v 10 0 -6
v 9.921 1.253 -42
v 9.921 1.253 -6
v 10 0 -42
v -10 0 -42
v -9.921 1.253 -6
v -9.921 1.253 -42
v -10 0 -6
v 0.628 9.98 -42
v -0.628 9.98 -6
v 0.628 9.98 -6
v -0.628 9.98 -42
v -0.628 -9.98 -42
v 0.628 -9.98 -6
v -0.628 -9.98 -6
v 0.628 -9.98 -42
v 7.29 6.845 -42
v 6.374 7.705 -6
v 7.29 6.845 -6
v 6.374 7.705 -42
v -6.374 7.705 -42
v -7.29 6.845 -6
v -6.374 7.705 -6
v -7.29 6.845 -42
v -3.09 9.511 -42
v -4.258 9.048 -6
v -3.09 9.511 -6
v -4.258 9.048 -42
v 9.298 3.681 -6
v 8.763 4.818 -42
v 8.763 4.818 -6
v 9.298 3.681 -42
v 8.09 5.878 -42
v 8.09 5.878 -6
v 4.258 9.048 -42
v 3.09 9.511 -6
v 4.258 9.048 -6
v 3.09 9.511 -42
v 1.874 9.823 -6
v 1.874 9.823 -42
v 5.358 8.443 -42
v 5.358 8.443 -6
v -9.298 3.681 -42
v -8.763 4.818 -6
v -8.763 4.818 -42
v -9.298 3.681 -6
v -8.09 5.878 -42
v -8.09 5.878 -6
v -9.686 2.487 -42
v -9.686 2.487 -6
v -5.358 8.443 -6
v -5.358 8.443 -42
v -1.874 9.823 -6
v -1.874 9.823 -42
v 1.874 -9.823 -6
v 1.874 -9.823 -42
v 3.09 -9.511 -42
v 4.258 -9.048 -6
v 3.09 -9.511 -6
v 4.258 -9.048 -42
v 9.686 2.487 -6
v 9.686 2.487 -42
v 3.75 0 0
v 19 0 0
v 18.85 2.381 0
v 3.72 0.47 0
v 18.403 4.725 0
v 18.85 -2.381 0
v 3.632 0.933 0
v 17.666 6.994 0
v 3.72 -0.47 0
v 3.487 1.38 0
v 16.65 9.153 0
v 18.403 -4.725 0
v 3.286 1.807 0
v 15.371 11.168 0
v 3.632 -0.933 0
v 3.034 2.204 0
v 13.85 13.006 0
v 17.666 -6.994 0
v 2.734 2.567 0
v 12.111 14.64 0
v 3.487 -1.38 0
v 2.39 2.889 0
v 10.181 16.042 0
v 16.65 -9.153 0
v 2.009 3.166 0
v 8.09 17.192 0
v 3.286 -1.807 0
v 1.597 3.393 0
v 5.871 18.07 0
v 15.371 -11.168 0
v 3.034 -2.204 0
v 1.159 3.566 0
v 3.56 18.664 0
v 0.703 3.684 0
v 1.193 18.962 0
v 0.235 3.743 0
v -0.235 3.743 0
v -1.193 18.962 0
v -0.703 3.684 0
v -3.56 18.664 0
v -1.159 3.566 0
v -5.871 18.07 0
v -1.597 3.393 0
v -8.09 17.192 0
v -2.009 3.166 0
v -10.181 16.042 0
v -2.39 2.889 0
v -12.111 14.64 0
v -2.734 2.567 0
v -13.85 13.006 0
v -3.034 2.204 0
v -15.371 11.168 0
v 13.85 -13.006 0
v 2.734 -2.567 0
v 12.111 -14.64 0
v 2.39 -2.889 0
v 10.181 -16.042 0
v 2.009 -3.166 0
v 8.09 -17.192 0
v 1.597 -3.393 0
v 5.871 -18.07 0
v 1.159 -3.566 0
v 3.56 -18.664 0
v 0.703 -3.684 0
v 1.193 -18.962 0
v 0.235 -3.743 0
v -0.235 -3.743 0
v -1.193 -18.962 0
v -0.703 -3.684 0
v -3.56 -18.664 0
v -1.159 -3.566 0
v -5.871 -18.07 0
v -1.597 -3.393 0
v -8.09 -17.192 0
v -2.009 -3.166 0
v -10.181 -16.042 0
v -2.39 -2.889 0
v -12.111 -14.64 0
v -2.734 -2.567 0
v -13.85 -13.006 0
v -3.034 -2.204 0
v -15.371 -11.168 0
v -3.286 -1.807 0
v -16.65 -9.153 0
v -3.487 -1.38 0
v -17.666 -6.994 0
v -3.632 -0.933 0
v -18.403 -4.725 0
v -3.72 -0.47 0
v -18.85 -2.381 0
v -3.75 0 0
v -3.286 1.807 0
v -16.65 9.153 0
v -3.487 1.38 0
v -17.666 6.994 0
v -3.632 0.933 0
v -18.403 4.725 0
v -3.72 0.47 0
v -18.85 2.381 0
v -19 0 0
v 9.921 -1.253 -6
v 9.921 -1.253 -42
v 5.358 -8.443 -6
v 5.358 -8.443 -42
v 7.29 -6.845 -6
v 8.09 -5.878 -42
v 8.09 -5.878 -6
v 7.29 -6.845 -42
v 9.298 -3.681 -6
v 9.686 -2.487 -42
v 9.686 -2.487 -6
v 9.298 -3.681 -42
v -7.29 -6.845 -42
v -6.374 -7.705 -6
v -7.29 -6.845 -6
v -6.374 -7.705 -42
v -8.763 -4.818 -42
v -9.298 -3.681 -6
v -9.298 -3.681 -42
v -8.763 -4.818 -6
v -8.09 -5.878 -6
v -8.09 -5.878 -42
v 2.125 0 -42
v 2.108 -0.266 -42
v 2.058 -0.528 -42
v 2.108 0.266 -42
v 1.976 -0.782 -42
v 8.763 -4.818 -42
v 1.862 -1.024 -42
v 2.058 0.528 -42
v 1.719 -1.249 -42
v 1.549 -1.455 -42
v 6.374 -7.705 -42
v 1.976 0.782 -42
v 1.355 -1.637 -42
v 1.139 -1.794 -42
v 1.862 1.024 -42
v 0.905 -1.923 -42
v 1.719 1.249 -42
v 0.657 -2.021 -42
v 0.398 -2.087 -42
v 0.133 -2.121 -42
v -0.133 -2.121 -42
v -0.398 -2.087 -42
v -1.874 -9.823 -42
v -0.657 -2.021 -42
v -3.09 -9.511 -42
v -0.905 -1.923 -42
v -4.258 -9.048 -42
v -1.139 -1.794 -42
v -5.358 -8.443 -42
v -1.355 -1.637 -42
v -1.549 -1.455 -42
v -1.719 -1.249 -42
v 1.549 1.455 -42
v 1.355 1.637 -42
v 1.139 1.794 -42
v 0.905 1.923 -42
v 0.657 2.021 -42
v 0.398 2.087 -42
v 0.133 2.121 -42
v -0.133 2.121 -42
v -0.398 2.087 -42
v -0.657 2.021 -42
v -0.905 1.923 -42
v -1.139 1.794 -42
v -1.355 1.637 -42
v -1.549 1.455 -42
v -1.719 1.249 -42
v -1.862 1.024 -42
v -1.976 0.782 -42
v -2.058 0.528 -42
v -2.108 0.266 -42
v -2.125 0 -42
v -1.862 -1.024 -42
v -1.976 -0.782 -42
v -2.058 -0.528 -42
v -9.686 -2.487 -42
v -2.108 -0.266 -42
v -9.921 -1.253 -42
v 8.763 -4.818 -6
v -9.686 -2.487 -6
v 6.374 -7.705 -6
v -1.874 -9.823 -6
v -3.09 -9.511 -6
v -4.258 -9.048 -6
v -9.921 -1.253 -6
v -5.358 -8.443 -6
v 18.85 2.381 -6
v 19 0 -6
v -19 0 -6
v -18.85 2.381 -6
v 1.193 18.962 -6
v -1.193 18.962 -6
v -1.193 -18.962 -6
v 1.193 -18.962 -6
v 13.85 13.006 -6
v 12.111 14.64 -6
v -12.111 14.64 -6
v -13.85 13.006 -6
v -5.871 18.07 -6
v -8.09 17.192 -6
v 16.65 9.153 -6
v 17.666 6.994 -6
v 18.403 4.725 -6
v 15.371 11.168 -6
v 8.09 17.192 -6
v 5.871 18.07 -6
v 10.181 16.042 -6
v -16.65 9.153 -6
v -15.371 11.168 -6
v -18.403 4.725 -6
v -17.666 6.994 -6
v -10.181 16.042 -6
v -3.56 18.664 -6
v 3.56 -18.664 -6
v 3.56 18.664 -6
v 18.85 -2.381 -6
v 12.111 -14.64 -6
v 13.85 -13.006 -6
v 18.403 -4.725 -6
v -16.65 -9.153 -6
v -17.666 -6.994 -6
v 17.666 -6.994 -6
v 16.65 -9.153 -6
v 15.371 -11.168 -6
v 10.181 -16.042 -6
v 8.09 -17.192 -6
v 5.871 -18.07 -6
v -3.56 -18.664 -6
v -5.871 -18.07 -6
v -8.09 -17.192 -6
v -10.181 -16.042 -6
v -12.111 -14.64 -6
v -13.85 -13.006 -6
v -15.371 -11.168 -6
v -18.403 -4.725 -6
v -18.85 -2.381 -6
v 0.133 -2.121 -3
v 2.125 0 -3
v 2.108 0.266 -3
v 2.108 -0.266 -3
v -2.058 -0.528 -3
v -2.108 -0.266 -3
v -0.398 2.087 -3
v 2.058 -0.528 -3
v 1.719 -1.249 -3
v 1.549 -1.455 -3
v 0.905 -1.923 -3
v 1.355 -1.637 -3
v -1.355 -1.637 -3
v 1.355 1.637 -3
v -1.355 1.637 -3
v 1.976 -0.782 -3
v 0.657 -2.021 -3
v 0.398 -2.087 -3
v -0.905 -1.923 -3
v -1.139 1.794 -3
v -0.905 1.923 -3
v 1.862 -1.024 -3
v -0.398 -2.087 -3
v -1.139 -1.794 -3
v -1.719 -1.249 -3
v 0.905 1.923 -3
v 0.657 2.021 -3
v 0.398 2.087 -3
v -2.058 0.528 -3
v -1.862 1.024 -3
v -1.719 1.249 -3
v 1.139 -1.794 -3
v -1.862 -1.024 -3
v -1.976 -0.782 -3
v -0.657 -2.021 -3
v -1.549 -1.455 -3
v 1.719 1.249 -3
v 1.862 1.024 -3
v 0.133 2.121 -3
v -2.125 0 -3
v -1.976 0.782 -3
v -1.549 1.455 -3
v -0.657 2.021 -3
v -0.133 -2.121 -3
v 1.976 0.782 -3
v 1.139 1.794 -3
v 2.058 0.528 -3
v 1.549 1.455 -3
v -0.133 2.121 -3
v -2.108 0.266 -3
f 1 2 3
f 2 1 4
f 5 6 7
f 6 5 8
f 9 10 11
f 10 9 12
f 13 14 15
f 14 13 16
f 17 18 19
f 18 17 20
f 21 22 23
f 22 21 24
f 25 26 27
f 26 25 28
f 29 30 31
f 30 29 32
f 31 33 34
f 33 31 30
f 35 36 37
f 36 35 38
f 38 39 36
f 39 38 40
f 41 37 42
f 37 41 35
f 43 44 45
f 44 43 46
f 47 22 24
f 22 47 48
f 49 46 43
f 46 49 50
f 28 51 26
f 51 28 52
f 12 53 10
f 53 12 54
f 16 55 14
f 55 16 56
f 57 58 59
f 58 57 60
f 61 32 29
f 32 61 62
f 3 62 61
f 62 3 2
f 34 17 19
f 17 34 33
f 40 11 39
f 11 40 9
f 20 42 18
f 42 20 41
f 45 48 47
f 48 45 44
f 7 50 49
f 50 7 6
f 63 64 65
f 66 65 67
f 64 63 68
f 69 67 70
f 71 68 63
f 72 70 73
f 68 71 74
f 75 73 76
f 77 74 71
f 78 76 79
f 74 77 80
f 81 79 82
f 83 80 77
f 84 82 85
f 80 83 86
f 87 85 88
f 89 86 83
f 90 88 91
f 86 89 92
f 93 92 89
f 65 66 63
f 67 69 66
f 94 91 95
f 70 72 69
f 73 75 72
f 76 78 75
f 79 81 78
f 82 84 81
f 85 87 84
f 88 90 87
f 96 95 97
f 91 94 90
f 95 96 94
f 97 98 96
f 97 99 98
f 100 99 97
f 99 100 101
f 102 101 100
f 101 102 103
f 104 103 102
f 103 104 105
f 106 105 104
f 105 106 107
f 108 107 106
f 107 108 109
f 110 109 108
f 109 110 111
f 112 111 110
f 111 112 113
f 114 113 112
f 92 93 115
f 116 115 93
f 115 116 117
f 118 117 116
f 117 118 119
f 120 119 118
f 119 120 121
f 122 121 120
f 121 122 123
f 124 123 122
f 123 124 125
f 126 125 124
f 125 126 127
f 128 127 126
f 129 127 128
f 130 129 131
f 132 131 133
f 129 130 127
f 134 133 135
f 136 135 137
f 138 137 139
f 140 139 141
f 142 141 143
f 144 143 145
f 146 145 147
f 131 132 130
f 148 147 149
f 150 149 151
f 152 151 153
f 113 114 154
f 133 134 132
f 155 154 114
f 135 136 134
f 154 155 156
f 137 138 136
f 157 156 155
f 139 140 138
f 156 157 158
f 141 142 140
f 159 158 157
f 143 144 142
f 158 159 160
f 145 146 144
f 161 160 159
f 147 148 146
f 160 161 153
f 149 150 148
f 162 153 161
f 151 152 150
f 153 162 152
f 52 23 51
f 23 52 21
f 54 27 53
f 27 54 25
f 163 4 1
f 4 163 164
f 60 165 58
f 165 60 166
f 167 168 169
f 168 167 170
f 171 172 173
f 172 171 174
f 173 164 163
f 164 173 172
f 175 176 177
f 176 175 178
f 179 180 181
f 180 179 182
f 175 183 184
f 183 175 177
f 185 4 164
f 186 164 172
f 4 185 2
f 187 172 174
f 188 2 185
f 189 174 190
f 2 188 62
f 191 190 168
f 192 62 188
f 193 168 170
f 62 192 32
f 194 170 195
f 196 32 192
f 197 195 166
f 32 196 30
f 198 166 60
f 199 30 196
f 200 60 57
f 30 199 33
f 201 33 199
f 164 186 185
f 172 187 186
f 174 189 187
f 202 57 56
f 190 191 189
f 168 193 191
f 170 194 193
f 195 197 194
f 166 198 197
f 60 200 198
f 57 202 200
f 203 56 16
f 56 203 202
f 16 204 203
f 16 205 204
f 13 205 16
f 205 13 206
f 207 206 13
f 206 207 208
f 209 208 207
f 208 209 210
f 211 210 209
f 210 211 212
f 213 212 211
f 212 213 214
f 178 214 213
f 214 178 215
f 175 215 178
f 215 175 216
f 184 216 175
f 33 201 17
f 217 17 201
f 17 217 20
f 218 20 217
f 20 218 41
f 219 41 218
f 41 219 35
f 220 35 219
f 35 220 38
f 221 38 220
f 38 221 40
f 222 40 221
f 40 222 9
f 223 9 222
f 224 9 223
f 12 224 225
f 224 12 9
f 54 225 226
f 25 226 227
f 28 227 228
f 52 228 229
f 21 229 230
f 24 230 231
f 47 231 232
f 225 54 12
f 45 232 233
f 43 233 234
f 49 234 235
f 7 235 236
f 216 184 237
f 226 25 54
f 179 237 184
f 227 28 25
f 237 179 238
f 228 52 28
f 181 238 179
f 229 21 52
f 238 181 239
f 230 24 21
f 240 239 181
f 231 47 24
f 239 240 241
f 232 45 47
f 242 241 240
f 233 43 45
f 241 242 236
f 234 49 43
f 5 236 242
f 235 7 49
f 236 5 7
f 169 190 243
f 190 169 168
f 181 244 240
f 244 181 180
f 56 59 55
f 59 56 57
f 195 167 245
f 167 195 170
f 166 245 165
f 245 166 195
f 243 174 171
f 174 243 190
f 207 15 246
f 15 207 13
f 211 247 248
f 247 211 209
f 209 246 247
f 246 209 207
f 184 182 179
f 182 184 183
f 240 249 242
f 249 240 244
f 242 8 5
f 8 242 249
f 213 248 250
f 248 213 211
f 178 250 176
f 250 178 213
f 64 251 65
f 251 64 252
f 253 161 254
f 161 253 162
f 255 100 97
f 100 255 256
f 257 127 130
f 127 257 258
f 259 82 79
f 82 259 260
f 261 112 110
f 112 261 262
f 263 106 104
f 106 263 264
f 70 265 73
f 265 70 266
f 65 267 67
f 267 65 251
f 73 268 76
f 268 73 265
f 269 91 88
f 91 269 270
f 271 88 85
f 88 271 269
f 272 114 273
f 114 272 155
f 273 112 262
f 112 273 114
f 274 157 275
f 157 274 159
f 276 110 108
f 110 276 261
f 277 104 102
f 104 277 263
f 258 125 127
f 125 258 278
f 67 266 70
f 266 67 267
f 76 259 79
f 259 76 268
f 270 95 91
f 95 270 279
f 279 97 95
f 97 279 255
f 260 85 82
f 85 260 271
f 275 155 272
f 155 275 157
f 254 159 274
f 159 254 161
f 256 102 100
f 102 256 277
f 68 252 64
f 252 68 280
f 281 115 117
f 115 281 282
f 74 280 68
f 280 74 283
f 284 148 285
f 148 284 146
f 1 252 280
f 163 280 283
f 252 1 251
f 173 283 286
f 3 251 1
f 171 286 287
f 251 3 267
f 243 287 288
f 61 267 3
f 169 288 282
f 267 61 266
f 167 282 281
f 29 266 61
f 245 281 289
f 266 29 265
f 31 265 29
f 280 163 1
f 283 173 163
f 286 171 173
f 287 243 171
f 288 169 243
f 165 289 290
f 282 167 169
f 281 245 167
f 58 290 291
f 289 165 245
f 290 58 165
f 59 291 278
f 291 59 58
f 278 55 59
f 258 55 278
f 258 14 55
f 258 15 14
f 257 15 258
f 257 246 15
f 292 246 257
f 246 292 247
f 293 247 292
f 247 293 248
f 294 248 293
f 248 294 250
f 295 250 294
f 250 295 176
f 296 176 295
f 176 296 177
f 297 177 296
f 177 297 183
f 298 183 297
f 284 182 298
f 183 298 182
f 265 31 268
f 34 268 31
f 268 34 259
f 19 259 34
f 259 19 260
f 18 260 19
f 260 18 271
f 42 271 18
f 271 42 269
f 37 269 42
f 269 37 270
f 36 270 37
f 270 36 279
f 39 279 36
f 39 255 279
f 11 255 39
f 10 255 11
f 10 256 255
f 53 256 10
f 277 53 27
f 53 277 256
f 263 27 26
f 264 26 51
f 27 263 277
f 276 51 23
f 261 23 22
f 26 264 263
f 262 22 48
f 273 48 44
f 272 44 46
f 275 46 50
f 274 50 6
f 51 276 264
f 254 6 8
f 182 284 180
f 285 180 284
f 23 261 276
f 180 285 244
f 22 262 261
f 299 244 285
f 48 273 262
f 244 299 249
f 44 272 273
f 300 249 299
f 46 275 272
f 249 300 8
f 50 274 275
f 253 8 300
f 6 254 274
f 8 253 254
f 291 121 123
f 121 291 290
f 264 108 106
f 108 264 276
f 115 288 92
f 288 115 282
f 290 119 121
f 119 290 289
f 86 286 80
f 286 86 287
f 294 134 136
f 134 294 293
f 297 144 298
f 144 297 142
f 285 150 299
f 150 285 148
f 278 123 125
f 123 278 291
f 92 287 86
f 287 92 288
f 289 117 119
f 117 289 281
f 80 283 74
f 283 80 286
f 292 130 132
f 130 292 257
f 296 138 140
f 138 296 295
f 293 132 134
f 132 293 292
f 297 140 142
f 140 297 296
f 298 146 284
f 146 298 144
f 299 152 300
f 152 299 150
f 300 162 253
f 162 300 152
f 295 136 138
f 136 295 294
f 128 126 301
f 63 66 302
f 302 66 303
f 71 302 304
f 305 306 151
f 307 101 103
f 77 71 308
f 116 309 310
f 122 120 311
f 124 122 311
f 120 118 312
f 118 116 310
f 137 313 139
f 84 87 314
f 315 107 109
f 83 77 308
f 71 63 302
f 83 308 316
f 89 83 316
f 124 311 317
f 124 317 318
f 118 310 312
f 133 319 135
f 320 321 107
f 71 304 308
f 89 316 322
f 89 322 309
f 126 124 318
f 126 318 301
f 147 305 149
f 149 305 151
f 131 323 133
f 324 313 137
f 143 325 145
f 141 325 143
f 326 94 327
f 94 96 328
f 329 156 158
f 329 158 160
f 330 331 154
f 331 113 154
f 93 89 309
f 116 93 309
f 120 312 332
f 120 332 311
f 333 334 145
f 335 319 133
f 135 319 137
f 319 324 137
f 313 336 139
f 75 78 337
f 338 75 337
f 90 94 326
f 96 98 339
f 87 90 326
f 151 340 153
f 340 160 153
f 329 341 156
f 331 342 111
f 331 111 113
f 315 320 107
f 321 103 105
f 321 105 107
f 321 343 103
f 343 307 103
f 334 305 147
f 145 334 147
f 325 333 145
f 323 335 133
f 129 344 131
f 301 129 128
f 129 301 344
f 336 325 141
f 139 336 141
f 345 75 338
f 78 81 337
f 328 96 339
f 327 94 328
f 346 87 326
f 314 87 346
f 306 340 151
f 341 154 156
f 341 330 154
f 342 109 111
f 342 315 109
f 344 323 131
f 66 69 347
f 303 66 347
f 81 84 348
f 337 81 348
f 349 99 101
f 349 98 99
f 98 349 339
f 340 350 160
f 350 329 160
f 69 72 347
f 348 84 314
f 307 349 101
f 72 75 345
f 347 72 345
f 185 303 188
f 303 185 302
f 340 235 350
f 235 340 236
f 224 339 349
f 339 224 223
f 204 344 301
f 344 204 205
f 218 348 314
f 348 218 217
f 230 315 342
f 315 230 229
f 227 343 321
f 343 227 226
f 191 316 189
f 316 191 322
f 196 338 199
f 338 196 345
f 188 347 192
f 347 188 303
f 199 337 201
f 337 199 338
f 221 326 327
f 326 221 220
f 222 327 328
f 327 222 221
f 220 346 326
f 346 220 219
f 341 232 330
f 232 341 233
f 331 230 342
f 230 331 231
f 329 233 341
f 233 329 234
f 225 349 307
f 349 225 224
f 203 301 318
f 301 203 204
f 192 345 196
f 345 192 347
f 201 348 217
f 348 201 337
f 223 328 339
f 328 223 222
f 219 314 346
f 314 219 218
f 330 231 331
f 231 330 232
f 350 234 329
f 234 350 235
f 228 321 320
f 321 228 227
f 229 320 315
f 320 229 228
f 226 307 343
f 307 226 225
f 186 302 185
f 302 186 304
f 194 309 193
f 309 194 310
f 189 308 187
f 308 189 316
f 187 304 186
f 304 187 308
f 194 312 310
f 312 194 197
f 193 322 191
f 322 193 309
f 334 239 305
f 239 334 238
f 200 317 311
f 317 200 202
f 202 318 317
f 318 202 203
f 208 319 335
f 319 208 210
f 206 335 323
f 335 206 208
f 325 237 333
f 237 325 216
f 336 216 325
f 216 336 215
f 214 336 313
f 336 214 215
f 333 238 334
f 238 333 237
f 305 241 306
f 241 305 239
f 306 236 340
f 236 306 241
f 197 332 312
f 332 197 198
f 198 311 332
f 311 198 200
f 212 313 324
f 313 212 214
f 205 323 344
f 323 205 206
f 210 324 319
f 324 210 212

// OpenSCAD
$fn = 50;


difference() {
	union() {
		translate(v = [0, 0, -42.0000000000]) {
			cylinder(h = 42, r = 10.0000000000);
		}
		translate(v = [0, 0, -6.0000000000]) {
			cylinder(h = 6, r = 19.0000000000);
		}
	}
	union() {
		translate(v = [0, 0, 0]) {
			rotate(a = [0, 0, 0]) {
				difference() {
					union() {
						#translate(v = [0, 0, -42.0000000000]) {
							cylinder(h = 42, r = 2.0000000000);
						}
						#translate(v = [0, 0, -3]) {
							cylinder(h = 3, r1 = 2.1250000000, r2 = 3.7500000000);
						}
						#translate(v = [0, 0, -42.0000000000]) {
							cylinder(h = 42, r = 2.1250000000);
						}
						#translate(v = [0, 0, -42.0000000000]) {
							cylinder(h = 42, r = 2.0000000000);
						}
					}
					union();
				}
			}
		}
	}
}
